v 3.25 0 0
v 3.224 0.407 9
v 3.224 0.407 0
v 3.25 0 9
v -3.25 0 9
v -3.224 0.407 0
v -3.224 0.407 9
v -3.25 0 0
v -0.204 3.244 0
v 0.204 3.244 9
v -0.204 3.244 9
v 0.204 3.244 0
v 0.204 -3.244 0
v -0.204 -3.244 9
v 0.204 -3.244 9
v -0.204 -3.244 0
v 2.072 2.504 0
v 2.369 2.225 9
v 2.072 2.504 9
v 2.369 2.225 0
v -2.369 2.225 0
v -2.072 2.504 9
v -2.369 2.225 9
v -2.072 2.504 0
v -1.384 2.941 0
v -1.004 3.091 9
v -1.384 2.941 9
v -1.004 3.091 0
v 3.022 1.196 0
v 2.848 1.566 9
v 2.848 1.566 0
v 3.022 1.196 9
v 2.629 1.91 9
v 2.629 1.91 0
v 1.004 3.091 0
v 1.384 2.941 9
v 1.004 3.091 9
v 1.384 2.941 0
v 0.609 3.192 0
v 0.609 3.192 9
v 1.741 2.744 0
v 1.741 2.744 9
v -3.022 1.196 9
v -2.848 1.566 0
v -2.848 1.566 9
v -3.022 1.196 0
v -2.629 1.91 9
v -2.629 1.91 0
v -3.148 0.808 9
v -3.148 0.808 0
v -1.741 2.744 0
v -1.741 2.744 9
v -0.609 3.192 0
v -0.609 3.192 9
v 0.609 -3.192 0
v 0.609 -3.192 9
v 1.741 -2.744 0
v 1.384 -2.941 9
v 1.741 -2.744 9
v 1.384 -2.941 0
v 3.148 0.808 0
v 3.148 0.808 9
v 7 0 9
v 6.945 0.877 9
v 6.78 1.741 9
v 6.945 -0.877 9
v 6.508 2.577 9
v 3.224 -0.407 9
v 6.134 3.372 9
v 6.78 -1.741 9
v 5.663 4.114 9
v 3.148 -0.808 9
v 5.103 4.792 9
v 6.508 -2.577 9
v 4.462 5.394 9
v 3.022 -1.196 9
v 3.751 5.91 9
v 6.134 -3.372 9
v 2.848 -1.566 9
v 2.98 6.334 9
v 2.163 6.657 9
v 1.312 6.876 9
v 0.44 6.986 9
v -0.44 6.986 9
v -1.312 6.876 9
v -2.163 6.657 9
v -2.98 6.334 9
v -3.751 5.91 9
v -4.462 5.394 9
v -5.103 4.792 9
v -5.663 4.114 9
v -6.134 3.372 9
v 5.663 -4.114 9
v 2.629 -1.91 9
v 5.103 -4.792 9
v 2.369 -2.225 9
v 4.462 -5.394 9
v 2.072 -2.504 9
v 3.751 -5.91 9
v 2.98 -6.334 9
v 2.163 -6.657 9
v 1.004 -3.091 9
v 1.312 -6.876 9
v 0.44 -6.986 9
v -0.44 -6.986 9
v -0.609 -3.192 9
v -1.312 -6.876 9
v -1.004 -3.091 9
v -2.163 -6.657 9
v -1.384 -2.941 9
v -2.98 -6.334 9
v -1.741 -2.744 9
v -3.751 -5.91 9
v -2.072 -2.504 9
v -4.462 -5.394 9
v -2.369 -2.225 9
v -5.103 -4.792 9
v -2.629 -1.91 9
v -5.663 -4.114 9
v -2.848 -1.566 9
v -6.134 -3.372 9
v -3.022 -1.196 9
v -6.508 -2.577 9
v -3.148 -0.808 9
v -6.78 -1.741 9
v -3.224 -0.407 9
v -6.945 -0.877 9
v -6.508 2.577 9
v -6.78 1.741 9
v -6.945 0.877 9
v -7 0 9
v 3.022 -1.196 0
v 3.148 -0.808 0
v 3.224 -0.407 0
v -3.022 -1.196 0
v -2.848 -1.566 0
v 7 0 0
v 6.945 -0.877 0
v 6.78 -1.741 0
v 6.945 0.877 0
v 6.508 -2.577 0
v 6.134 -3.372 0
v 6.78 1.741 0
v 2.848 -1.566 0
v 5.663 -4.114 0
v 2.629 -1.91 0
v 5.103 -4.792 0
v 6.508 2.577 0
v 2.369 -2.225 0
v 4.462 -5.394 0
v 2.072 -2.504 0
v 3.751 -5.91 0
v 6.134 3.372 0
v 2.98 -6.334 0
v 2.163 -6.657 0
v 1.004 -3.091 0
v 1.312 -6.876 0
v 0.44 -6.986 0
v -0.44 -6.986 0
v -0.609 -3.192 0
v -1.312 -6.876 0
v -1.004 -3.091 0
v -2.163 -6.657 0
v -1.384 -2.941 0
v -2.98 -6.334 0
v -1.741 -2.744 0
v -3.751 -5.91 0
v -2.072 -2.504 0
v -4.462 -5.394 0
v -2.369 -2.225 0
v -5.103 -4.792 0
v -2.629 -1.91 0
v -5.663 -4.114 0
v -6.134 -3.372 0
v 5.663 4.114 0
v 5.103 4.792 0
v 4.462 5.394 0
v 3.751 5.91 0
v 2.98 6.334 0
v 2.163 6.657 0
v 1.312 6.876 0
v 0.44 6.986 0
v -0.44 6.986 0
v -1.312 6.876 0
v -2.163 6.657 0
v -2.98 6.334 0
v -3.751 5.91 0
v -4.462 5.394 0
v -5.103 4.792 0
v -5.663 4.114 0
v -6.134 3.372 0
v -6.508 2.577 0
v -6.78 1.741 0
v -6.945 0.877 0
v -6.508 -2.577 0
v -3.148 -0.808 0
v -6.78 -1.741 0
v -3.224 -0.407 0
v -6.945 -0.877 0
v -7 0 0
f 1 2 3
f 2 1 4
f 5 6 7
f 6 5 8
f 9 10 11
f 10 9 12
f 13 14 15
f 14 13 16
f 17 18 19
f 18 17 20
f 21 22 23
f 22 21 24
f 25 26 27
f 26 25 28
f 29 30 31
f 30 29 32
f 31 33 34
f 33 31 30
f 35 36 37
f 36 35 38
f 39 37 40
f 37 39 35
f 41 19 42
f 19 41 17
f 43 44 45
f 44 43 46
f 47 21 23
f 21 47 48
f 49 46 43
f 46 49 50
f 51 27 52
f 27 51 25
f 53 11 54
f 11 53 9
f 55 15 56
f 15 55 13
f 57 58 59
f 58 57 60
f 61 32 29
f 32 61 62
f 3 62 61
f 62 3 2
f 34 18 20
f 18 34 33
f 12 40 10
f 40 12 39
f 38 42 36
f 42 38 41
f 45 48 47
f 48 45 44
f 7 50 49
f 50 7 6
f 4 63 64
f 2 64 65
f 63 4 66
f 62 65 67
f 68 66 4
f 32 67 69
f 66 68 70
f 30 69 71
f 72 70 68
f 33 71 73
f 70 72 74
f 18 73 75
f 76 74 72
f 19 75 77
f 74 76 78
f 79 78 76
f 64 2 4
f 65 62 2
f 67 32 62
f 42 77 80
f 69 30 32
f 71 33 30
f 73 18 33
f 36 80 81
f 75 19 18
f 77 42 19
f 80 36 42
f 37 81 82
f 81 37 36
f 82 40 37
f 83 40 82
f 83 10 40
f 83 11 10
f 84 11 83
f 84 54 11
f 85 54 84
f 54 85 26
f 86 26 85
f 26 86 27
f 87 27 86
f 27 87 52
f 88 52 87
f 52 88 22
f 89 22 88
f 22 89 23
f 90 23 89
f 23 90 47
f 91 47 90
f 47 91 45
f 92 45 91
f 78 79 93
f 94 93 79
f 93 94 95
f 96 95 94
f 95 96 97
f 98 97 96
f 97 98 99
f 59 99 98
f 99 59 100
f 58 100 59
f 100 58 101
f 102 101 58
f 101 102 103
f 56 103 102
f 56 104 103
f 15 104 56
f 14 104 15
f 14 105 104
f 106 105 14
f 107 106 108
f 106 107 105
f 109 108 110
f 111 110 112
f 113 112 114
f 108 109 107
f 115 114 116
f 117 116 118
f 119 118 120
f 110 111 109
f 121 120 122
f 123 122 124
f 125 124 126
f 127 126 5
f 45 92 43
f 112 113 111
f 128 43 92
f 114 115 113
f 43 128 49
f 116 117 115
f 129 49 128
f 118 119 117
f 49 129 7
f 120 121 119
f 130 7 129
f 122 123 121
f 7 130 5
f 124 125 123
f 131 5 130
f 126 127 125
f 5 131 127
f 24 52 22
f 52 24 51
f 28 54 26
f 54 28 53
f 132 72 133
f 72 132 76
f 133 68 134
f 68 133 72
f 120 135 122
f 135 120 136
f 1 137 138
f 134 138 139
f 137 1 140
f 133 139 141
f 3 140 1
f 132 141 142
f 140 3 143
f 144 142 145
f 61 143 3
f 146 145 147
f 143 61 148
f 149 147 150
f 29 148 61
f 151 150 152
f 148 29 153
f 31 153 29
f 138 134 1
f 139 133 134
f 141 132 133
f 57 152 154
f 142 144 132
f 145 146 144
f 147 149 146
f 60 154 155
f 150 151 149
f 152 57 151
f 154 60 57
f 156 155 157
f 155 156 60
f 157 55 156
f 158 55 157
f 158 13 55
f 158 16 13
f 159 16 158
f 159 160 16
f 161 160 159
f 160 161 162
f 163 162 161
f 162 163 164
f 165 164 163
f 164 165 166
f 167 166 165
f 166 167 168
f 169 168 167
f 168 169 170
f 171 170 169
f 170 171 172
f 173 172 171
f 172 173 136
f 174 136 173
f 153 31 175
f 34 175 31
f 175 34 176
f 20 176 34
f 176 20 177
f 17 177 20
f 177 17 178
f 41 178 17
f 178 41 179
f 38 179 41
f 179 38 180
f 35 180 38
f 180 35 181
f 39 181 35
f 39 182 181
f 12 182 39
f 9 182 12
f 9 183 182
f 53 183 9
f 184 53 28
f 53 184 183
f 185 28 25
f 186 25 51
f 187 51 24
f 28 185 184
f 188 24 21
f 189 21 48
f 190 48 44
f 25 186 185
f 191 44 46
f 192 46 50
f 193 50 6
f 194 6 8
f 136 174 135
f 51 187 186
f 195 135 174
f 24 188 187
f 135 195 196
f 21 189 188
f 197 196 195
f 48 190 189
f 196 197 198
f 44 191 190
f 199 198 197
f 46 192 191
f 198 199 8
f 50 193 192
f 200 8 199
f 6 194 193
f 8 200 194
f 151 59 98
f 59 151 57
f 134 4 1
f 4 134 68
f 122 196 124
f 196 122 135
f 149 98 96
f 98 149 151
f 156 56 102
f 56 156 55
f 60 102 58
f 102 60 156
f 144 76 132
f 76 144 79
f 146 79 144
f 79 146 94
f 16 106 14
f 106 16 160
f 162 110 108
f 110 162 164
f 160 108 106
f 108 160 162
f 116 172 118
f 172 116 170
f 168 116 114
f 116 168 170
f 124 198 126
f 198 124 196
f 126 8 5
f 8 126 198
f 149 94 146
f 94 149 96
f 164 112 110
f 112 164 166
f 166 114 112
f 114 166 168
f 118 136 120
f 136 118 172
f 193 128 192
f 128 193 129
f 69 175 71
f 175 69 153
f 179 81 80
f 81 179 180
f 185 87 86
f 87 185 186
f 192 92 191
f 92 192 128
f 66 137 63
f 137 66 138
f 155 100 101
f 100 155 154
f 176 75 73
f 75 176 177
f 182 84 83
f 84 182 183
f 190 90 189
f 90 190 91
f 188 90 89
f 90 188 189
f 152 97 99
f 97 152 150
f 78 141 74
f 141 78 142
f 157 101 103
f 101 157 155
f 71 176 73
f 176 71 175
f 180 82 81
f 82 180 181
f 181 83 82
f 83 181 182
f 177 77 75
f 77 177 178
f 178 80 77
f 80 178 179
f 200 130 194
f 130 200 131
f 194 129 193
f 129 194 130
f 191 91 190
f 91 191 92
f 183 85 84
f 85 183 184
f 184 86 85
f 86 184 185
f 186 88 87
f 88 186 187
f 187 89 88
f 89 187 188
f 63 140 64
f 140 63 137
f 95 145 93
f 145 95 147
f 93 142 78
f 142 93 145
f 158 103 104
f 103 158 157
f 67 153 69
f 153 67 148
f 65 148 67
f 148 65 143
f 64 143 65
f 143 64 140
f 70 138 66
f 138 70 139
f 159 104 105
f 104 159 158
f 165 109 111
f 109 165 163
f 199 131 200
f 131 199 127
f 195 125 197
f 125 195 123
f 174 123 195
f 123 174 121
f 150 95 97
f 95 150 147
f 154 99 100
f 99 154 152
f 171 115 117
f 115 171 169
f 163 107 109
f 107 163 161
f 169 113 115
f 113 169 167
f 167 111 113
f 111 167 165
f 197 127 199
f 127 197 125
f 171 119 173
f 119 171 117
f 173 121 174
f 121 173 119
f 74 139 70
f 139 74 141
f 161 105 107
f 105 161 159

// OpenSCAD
$fn = 50;


difference() {
	union() {
		cylinder(h = 9, r = 7.0000000000);
	}
	union() {
		translate(v = [0.0000000000, 0.0000000000, -100.0000000000]) {
			cylinder(h = 200, r = 3.2500000000);
		}
		cylinder(h = 9, r = 1.8000000000);
		cylinder(h = 9, r = 1.8000000000);
		cylinder(h = 9, r = 1.8000000000);
	}
}
